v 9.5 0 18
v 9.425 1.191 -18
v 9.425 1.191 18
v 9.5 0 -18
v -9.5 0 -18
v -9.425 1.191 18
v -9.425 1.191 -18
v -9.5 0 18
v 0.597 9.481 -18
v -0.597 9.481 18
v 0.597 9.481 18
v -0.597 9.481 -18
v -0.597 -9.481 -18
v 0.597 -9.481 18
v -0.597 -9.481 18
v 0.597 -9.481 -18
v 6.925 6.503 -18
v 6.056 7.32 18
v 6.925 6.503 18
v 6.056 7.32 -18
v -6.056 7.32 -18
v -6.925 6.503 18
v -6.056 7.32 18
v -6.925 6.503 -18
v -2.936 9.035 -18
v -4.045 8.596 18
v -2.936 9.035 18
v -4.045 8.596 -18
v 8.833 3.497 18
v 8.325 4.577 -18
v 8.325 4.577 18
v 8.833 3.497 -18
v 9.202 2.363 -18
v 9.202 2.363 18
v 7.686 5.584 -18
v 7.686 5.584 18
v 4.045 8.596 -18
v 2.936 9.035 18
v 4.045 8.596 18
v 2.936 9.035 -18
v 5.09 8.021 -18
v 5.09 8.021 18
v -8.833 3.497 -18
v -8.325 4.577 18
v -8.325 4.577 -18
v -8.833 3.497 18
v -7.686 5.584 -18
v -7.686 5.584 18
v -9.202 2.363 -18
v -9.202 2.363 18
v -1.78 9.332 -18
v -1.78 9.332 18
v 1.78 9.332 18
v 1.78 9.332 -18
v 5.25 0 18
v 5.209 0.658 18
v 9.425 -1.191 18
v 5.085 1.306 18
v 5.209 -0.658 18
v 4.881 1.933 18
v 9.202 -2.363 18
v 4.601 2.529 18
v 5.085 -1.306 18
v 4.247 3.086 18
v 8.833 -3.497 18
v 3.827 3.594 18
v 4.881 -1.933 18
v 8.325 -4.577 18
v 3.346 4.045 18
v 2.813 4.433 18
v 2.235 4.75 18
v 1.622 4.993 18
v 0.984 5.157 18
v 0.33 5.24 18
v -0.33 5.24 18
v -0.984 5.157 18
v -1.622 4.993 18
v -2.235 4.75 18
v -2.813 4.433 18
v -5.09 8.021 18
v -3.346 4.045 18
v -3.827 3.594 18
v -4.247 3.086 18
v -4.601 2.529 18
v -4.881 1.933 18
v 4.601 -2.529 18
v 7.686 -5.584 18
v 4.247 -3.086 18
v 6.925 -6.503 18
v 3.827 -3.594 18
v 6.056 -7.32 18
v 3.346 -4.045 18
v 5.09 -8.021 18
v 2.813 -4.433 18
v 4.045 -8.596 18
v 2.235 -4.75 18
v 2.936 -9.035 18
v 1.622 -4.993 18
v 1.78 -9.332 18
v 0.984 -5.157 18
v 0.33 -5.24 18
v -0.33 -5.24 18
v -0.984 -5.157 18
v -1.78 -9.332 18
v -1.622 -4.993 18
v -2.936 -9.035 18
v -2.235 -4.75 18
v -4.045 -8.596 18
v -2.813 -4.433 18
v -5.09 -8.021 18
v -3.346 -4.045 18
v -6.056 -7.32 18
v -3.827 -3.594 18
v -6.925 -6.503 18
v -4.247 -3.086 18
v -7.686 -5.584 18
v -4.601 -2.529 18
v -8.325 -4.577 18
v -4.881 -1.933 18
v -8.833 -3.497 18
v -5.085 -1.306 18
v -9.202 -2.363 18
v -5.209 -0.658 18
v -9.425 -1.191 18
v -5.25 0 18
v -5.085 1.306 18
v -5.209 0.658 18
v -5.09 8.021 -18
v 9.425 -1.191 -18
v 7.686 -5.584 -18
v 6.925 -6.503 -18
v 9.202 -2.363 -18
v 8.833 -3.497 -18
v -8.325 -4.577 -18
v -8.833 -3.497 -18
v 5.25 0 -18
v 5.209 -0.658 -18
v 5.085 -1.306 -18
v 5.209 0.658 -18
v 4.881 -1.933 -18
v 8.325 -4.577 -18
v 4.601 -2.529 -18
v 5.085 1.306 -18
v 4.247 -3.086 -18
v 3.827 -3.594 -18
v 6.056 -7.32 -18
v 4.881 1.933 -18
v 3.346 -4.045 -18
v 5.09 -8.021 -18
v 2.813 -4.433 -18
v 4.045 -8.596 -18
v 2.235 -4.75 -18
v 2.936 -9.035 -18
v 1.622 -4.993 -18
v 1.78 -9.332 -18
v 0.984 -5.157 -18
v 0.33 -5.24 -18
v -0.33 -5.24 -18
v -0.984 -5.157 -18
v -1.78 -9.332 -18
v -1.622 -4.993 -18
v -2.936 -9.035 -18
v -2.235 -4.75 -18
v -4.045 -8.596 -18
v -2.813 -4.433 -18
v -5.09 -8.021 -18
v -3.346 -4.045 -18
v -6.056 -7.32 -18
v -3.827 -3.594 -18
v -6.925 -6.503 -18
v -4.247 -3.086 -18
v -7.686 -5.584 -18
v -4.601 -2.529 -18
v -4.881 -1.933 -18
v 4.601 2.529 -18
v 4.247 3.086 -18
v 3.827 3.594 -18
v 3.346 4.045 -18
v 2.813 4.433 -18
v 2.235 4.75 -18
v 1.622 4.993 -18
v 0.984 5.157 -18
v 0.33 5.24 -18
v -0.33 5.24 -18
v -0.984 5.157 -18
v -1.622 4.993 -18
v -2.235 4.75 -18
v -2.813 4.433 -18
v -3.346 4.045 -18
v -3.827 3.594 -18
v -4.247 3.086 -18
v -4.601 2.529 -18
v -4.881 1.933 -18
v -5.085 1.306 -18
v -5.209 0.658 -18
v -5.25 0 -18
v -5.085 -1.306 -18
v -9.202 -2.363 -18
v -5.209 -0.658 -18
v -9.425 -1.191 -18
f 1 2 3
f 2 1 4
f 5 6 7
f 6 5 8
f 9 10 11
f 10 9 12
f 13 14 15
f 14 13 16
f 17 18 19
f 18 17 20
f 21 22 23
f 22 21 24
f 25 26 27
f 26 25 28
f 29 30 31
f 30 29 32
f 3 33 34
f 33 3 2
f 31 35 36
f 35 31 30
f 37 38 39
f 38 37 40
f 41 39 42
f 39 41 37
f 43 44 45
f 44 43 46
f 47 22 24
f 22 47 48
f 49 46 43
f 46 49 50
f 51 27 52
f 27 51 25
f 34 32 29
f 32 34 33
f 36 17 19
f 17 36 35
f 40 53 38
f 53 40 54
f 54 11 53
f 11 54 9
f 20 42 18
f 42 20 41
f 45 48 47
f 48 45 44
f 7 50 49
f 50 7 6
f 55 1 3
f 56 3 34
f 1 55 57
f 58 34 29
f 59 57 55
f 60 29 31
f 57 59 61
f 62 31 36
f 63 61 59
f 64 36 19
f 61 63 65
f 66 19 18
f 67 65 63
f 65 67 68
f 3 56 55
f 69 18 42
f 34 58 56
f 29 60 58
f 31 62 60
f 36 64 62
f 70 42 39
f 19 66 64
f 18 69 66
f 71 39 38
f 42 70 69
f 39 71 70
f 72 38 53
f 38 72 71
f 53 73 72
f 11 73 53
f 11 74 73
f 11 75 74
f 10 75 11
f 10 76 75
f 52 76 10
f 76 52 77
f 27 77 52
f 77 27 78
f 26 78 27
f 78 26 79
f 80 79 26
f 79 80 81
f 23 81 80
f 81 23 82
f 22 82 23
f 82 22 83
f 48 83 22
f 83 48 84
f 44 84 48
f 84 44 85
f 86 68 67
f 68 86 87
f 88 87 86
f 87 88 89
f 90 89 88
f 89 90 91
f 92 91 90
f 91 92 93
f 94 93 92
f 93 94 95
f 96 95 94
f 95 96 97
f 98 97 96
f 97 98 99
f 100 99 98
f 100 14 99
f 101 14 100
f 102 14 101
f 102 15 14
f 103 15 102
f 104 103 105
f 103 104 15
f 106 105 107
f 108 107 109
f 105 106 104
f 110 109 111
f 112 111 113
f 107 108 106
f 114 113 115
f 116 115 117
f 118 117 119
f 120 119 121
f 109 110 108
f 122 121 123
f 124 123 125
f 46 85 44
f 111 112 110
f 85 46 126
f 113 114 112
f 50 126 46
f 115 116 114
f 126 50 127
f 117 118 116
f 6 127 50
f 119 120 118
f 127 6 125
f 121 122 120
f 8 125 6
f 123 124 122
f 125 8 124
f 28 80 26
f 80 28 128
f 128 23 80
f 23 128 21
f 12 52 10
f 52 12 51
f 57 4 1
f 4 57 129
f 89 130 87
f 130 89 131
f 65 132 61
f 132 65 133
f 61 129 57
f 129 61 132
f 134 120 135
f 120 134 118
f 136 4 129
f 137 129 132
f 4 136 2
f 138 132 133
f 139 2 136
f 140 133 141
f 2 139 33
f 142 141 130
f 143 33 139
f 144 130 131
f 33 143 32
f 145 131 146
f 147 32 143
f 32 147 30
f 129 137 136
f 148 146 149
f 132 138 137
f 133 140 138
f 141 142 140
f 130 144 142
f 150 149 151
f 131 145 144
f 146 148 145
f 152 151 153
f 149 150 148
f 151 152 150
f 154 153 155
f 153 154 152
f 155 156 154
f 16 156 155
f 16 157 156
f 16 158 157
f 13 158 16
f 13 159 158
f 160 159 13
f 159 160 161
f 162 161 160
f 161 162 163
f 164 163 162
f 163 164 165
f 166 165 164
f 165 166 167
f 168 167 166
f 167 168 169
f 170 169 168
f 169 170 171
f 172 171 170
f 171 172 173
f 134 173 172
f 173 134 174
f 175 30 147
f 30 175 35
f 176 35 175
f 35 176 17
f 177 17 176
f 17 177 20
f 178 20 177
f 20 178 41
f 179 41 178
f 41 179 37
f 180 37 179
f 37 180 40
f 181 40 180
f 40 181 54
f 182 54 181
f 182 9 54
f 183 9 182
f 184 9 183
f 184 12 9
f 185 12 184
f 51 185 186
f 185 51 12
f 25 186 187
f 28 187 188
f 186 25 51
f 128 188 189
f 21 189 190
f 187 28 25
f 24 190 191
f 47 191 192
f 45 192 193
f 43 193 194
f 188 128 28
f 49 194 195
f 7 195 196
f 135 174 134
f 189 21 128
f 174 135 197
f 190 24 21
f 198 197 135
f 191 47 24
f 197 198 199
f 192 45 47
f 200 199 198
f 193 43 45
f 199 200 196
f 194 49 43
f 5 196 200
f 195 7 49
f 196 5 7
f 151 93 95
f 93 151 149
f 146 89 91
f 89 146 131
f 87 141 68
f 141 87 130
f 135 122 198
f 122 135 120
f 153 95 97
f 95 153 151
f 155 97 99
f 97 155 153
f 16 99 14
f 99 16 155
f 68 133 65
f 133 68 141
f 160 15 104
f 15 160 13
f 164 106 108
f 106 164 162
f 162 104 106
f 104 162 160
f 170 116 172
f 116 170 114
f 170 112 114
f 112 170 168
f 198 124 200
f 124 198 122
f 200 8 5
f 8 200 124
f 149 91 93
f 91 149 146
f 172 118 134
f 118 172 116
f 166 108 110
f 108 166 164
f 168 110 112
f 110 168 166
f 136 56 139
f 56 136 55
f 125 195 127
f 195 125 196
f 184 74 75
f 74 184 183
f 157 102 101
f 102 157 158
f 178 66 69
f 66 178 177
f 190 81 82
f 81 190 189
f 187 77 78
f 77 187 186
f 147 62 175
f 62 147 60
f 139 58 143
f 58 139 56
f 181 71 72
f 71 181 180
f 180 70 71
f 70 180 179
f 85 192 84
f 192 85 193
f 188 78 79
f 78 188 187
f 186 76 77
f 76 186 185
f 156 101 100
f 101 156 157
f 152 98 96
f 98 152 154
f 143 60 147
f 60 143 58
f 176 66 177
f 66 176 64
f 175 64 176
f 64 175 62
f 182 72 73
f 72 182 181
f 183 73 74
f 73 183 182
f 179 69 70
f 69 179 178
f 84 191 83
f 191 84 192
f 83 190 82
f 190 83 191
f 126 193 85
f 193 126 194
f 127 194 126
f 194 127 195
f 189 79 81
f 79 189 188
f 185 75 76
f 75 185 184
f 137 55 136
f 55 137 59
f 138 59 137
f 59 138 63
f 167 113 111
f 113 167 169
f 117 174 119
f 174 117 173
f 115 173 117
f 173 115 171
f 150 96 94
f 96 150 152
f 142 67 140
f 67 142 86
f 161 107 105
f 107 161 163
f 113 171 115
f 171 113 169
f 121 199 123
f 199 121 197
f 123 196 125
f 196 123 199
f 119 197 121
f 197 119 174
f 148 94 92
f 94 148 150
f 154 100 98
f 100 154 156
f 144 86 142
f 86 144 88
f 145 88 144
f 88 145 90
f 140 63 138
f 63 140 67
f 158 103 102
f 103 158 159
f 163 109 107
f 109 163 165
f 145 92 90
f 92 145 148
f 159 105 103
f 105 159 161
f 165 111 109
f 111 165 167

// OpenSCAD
$fn = 50;


difference() {
	union() {
		translate(v = [0, 0, -18.0000000000]) {
			cylinder(h = 36, r = 9.5000000000);
		}
	}
	union() {
		translate(v = [0, 0, -100.0000000000]) {
			cylinder(h = 200, r = 5.2500000000);
		}
	}
}
